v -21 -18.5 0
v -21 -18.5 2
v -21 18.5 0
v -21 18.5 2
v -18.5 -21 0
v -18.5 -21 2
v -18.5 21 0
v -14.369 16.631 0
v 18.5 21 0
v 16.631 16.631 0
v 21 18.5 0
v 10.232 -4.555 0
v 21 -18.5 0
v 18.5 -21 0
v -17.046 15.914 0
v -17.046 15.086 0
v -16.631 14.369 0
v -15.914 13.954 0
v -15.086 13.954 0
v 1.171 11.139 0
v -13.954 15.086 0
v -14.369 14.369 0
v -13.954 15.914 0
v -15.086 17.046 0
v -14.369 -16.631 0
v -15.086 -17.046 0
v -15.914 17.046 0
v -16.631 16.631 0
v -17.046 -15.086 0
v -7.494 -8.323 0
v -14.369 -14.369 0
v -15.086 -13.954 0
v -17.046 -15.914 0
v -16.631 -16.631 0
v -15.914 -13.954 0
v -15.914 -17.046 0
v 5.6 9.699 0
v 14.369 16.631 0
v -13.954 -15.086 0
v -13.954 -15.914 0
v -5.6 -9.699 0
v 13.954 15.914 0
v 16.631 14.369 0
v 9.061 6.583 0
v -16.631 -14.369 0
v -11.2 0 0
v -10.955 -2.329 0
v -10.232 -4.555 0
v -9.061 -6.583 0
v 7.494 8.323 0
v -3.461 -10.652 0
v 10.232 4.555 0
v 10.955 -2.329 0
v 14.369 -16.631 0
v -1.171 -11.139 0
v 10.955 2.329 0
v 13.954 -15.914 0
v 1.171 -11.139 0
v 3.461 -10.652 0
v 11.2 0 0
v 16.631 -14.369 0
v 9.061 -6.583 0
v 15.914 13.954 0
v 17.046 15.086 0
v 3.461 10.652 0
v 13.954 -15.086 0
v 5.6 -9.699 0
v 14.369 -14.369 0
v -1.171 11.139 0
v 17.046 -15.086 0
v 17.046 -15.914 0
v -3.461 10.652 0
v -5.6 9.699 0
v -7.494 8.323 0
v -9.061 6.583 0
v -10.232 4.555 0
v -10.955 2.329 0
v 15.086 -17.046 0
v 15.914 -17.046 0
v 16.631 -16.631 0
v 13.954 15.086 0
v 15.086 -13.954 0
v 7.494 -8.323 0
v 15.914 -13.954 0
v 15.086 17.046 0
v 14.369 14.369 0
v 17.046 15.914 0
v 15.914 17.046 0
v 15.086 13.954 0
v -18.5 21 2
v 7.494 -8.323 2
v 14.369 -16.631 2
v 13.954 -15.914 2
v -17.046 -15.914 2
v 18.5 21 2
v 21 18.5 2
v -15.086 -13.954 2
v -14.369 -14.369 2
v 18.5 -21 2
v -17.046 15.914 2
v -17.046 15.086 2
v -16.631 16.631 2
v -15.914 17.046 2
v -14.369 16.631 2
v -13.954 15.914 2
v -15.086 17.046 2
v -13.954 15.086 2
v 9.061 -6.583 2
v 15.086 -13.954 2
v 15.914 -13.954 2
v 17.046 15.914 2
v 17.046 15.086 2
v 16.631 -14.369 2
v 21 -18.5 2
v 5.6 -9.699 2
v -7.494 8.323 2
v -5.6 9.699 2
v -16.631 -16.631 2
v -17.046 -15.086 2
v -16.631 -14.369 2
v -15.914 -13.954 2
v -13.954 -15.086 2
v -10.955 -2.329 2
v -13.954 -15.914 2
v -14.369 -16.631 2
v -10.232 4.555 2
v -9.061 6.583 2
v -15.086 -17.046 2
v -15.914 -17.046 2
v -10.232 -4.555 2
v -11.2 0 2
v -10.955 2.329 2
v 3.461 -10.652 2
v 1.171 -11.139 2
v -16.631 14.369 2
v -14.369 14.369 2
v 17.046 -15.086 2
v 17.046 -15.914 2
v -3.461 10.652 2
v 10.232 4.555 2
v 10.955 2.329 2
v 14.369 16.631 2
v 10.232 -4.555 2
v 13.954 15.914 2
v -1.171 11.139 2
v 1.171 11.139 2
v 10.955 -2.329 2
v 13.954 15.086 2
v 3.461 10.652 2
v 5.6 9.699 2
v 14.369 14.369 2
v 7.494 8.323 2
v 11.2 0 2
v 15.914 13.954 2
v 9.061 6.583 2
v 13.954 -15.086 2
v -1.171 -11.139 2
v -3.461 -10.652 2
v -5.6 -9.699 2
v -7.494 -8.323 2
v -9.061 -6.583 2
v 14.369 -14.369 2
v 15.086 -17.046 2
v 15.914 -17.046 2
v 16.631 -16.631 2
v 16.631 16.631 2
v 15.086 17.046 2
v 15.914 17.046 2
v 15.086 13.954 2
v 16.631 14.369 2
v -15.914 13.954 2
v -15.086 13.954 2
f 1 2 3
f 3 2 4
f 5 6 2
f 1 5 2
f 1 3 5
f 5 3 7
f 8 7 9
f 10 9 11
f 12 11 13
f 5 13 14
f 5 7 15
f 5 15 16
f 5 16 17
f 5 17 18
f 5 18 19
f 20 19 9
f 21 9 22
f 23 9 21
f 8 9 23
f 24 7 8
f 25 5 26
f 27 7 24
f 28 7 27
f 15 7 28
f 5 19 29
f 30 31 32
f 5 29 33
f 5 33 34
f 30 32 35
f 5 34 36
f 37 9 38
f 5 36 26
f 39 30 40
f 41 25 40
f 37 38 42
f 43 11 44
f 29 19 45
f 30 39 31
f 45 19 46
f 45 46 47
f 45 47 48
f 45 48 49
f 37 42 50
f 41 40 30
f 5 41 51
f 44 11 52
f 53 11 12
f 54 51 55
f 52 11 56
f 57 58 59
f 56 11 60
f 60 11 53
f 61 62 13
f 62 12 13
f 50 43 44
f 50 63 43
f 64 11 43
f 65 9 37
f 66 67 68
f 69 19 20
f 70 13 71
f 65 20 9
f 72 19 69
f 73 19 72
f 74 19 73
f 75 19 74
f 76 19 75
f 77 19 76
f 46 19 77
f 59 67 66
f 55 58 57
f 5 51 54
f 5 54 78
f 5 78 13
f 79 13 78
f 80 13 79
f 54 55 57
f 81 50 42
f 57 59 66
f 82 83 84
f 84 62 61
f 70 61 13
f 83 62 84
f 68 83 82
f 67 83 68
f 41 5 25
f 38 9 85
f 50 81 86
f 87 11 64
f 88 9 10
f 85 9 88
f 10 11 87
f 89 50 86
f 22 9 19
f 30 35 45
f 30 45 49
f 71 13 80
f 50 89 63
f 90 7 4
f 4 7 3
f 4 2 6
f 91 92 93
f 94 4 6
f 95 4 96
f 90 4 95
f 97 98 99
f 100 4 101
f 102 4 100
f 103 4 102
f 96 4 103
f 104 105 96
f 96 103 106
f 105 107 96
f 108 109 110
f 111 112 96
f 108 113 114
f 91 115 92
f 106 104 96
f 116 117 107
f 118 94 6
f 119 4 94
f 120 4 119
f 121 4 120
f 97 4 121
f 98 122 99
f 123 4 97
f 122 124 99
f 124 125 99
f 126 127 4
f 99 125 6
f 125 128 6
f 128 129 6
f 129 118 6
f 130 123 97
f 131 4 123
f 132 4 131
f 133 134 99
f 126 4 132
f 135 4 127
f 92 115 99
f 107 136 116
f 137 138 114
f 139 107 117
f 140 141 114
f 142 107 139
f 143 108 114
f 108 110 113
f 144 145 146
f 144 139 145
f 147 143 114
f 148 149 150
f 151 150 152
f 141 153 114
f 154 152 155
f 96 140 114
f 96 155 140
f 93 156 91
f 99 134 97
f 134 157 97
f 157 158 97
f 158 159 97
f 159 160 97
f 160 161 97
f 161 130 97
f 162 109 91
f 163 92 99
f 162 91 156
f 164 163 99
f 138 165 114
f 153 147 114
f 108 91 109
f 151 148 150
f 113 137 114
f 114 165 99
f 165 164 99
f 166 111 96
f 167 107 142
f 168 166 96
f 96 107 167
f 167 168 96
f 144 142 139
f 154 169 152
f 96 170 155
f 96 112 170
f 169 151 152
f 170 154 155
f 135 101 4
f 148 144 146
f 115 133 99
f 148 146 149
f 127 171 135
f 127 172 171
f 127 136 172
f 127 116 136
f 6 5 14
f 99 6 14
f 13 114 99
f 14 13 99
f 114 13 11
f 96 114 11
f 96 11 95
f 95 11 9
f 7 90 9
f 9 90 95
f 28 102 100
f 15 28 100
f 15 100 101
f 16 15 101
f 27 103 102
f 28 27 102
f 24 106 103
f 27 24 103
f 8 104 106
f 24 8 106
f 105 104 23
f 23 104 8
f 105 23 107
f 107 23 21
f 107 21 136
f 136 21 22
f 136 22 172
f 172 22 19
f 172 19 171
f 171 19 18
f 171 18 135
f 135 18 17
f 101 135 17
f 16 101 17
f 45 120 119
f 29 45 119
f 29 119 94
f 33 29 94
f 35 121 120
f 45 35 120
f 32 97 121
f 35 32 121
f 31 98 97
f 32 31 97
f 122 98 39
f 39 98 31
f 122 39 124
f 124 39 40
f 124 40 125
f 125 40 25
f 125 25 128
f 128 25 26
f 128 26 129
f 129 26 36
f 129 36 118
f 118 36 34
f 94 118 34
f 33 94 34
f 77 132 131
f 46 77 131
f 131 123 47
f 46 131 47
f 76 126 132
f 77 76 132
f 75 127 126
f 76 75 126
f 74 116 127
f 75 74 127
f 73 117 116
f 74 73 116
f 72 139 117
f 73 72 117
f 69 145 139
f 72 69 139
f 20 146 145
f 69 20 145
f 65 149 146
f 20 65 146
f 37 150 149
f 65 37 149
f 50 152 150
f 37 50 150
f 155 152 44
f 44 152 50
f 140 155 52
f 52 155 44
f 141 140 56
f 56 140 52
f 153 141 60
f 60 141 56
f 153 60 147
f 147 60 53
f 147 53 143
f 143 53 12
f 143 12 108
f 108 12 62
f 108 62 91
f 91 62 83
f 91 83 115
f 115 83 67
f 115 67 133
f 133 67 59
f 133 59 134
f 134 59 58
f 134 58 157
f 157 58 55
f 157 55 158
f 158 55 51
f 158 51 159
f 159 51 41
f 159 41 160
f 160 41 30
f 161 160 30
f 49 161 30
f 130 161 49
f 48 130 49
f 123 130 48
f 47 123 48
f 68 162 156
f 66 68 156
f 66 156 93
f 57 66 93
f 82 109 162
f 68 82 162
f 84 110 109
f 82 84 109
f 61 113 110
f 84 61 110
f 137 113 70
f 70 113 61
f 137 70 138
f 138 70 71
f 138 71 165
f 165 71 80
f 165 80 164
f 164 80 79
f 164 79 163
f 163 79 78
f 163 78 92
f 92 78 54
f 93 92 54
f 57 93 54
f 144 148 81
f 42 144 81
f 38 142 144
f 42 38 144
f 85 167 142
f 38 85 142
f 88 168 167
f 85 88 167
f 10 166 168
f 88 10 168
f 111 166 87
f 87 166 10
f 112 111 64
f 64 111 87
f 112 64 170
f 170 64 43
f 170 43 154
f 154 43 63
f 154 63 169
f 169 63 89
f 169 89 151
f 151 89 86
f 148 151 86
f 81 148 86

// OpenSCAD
thickness=2;
hole_pitch=31;

module NEMA17_spacer(){
	//body
	difference(){
		translate([0,0,thickness/2]) cube([42,42,thickness],center=true);
		for(i=[0,1,2,3]){
			rotate([0,0,i*90+45]) union() {
				translate([21*sqrt(2)+2.5-2.5/sqrt(2),0,thickness/2]) {
					cube([5,10,thickness+.2],center=true);
				}
				translate([sqrt(2)*hole_pitch/2,0,0]) cylinder(r=3.2/2,h=thickness*4,center=true,$fn=12);
			}
			
		}
		cylinder(r=22.4/2,h=thickness*2.2,center=true);
	}
}

NEMA17_spacer();
